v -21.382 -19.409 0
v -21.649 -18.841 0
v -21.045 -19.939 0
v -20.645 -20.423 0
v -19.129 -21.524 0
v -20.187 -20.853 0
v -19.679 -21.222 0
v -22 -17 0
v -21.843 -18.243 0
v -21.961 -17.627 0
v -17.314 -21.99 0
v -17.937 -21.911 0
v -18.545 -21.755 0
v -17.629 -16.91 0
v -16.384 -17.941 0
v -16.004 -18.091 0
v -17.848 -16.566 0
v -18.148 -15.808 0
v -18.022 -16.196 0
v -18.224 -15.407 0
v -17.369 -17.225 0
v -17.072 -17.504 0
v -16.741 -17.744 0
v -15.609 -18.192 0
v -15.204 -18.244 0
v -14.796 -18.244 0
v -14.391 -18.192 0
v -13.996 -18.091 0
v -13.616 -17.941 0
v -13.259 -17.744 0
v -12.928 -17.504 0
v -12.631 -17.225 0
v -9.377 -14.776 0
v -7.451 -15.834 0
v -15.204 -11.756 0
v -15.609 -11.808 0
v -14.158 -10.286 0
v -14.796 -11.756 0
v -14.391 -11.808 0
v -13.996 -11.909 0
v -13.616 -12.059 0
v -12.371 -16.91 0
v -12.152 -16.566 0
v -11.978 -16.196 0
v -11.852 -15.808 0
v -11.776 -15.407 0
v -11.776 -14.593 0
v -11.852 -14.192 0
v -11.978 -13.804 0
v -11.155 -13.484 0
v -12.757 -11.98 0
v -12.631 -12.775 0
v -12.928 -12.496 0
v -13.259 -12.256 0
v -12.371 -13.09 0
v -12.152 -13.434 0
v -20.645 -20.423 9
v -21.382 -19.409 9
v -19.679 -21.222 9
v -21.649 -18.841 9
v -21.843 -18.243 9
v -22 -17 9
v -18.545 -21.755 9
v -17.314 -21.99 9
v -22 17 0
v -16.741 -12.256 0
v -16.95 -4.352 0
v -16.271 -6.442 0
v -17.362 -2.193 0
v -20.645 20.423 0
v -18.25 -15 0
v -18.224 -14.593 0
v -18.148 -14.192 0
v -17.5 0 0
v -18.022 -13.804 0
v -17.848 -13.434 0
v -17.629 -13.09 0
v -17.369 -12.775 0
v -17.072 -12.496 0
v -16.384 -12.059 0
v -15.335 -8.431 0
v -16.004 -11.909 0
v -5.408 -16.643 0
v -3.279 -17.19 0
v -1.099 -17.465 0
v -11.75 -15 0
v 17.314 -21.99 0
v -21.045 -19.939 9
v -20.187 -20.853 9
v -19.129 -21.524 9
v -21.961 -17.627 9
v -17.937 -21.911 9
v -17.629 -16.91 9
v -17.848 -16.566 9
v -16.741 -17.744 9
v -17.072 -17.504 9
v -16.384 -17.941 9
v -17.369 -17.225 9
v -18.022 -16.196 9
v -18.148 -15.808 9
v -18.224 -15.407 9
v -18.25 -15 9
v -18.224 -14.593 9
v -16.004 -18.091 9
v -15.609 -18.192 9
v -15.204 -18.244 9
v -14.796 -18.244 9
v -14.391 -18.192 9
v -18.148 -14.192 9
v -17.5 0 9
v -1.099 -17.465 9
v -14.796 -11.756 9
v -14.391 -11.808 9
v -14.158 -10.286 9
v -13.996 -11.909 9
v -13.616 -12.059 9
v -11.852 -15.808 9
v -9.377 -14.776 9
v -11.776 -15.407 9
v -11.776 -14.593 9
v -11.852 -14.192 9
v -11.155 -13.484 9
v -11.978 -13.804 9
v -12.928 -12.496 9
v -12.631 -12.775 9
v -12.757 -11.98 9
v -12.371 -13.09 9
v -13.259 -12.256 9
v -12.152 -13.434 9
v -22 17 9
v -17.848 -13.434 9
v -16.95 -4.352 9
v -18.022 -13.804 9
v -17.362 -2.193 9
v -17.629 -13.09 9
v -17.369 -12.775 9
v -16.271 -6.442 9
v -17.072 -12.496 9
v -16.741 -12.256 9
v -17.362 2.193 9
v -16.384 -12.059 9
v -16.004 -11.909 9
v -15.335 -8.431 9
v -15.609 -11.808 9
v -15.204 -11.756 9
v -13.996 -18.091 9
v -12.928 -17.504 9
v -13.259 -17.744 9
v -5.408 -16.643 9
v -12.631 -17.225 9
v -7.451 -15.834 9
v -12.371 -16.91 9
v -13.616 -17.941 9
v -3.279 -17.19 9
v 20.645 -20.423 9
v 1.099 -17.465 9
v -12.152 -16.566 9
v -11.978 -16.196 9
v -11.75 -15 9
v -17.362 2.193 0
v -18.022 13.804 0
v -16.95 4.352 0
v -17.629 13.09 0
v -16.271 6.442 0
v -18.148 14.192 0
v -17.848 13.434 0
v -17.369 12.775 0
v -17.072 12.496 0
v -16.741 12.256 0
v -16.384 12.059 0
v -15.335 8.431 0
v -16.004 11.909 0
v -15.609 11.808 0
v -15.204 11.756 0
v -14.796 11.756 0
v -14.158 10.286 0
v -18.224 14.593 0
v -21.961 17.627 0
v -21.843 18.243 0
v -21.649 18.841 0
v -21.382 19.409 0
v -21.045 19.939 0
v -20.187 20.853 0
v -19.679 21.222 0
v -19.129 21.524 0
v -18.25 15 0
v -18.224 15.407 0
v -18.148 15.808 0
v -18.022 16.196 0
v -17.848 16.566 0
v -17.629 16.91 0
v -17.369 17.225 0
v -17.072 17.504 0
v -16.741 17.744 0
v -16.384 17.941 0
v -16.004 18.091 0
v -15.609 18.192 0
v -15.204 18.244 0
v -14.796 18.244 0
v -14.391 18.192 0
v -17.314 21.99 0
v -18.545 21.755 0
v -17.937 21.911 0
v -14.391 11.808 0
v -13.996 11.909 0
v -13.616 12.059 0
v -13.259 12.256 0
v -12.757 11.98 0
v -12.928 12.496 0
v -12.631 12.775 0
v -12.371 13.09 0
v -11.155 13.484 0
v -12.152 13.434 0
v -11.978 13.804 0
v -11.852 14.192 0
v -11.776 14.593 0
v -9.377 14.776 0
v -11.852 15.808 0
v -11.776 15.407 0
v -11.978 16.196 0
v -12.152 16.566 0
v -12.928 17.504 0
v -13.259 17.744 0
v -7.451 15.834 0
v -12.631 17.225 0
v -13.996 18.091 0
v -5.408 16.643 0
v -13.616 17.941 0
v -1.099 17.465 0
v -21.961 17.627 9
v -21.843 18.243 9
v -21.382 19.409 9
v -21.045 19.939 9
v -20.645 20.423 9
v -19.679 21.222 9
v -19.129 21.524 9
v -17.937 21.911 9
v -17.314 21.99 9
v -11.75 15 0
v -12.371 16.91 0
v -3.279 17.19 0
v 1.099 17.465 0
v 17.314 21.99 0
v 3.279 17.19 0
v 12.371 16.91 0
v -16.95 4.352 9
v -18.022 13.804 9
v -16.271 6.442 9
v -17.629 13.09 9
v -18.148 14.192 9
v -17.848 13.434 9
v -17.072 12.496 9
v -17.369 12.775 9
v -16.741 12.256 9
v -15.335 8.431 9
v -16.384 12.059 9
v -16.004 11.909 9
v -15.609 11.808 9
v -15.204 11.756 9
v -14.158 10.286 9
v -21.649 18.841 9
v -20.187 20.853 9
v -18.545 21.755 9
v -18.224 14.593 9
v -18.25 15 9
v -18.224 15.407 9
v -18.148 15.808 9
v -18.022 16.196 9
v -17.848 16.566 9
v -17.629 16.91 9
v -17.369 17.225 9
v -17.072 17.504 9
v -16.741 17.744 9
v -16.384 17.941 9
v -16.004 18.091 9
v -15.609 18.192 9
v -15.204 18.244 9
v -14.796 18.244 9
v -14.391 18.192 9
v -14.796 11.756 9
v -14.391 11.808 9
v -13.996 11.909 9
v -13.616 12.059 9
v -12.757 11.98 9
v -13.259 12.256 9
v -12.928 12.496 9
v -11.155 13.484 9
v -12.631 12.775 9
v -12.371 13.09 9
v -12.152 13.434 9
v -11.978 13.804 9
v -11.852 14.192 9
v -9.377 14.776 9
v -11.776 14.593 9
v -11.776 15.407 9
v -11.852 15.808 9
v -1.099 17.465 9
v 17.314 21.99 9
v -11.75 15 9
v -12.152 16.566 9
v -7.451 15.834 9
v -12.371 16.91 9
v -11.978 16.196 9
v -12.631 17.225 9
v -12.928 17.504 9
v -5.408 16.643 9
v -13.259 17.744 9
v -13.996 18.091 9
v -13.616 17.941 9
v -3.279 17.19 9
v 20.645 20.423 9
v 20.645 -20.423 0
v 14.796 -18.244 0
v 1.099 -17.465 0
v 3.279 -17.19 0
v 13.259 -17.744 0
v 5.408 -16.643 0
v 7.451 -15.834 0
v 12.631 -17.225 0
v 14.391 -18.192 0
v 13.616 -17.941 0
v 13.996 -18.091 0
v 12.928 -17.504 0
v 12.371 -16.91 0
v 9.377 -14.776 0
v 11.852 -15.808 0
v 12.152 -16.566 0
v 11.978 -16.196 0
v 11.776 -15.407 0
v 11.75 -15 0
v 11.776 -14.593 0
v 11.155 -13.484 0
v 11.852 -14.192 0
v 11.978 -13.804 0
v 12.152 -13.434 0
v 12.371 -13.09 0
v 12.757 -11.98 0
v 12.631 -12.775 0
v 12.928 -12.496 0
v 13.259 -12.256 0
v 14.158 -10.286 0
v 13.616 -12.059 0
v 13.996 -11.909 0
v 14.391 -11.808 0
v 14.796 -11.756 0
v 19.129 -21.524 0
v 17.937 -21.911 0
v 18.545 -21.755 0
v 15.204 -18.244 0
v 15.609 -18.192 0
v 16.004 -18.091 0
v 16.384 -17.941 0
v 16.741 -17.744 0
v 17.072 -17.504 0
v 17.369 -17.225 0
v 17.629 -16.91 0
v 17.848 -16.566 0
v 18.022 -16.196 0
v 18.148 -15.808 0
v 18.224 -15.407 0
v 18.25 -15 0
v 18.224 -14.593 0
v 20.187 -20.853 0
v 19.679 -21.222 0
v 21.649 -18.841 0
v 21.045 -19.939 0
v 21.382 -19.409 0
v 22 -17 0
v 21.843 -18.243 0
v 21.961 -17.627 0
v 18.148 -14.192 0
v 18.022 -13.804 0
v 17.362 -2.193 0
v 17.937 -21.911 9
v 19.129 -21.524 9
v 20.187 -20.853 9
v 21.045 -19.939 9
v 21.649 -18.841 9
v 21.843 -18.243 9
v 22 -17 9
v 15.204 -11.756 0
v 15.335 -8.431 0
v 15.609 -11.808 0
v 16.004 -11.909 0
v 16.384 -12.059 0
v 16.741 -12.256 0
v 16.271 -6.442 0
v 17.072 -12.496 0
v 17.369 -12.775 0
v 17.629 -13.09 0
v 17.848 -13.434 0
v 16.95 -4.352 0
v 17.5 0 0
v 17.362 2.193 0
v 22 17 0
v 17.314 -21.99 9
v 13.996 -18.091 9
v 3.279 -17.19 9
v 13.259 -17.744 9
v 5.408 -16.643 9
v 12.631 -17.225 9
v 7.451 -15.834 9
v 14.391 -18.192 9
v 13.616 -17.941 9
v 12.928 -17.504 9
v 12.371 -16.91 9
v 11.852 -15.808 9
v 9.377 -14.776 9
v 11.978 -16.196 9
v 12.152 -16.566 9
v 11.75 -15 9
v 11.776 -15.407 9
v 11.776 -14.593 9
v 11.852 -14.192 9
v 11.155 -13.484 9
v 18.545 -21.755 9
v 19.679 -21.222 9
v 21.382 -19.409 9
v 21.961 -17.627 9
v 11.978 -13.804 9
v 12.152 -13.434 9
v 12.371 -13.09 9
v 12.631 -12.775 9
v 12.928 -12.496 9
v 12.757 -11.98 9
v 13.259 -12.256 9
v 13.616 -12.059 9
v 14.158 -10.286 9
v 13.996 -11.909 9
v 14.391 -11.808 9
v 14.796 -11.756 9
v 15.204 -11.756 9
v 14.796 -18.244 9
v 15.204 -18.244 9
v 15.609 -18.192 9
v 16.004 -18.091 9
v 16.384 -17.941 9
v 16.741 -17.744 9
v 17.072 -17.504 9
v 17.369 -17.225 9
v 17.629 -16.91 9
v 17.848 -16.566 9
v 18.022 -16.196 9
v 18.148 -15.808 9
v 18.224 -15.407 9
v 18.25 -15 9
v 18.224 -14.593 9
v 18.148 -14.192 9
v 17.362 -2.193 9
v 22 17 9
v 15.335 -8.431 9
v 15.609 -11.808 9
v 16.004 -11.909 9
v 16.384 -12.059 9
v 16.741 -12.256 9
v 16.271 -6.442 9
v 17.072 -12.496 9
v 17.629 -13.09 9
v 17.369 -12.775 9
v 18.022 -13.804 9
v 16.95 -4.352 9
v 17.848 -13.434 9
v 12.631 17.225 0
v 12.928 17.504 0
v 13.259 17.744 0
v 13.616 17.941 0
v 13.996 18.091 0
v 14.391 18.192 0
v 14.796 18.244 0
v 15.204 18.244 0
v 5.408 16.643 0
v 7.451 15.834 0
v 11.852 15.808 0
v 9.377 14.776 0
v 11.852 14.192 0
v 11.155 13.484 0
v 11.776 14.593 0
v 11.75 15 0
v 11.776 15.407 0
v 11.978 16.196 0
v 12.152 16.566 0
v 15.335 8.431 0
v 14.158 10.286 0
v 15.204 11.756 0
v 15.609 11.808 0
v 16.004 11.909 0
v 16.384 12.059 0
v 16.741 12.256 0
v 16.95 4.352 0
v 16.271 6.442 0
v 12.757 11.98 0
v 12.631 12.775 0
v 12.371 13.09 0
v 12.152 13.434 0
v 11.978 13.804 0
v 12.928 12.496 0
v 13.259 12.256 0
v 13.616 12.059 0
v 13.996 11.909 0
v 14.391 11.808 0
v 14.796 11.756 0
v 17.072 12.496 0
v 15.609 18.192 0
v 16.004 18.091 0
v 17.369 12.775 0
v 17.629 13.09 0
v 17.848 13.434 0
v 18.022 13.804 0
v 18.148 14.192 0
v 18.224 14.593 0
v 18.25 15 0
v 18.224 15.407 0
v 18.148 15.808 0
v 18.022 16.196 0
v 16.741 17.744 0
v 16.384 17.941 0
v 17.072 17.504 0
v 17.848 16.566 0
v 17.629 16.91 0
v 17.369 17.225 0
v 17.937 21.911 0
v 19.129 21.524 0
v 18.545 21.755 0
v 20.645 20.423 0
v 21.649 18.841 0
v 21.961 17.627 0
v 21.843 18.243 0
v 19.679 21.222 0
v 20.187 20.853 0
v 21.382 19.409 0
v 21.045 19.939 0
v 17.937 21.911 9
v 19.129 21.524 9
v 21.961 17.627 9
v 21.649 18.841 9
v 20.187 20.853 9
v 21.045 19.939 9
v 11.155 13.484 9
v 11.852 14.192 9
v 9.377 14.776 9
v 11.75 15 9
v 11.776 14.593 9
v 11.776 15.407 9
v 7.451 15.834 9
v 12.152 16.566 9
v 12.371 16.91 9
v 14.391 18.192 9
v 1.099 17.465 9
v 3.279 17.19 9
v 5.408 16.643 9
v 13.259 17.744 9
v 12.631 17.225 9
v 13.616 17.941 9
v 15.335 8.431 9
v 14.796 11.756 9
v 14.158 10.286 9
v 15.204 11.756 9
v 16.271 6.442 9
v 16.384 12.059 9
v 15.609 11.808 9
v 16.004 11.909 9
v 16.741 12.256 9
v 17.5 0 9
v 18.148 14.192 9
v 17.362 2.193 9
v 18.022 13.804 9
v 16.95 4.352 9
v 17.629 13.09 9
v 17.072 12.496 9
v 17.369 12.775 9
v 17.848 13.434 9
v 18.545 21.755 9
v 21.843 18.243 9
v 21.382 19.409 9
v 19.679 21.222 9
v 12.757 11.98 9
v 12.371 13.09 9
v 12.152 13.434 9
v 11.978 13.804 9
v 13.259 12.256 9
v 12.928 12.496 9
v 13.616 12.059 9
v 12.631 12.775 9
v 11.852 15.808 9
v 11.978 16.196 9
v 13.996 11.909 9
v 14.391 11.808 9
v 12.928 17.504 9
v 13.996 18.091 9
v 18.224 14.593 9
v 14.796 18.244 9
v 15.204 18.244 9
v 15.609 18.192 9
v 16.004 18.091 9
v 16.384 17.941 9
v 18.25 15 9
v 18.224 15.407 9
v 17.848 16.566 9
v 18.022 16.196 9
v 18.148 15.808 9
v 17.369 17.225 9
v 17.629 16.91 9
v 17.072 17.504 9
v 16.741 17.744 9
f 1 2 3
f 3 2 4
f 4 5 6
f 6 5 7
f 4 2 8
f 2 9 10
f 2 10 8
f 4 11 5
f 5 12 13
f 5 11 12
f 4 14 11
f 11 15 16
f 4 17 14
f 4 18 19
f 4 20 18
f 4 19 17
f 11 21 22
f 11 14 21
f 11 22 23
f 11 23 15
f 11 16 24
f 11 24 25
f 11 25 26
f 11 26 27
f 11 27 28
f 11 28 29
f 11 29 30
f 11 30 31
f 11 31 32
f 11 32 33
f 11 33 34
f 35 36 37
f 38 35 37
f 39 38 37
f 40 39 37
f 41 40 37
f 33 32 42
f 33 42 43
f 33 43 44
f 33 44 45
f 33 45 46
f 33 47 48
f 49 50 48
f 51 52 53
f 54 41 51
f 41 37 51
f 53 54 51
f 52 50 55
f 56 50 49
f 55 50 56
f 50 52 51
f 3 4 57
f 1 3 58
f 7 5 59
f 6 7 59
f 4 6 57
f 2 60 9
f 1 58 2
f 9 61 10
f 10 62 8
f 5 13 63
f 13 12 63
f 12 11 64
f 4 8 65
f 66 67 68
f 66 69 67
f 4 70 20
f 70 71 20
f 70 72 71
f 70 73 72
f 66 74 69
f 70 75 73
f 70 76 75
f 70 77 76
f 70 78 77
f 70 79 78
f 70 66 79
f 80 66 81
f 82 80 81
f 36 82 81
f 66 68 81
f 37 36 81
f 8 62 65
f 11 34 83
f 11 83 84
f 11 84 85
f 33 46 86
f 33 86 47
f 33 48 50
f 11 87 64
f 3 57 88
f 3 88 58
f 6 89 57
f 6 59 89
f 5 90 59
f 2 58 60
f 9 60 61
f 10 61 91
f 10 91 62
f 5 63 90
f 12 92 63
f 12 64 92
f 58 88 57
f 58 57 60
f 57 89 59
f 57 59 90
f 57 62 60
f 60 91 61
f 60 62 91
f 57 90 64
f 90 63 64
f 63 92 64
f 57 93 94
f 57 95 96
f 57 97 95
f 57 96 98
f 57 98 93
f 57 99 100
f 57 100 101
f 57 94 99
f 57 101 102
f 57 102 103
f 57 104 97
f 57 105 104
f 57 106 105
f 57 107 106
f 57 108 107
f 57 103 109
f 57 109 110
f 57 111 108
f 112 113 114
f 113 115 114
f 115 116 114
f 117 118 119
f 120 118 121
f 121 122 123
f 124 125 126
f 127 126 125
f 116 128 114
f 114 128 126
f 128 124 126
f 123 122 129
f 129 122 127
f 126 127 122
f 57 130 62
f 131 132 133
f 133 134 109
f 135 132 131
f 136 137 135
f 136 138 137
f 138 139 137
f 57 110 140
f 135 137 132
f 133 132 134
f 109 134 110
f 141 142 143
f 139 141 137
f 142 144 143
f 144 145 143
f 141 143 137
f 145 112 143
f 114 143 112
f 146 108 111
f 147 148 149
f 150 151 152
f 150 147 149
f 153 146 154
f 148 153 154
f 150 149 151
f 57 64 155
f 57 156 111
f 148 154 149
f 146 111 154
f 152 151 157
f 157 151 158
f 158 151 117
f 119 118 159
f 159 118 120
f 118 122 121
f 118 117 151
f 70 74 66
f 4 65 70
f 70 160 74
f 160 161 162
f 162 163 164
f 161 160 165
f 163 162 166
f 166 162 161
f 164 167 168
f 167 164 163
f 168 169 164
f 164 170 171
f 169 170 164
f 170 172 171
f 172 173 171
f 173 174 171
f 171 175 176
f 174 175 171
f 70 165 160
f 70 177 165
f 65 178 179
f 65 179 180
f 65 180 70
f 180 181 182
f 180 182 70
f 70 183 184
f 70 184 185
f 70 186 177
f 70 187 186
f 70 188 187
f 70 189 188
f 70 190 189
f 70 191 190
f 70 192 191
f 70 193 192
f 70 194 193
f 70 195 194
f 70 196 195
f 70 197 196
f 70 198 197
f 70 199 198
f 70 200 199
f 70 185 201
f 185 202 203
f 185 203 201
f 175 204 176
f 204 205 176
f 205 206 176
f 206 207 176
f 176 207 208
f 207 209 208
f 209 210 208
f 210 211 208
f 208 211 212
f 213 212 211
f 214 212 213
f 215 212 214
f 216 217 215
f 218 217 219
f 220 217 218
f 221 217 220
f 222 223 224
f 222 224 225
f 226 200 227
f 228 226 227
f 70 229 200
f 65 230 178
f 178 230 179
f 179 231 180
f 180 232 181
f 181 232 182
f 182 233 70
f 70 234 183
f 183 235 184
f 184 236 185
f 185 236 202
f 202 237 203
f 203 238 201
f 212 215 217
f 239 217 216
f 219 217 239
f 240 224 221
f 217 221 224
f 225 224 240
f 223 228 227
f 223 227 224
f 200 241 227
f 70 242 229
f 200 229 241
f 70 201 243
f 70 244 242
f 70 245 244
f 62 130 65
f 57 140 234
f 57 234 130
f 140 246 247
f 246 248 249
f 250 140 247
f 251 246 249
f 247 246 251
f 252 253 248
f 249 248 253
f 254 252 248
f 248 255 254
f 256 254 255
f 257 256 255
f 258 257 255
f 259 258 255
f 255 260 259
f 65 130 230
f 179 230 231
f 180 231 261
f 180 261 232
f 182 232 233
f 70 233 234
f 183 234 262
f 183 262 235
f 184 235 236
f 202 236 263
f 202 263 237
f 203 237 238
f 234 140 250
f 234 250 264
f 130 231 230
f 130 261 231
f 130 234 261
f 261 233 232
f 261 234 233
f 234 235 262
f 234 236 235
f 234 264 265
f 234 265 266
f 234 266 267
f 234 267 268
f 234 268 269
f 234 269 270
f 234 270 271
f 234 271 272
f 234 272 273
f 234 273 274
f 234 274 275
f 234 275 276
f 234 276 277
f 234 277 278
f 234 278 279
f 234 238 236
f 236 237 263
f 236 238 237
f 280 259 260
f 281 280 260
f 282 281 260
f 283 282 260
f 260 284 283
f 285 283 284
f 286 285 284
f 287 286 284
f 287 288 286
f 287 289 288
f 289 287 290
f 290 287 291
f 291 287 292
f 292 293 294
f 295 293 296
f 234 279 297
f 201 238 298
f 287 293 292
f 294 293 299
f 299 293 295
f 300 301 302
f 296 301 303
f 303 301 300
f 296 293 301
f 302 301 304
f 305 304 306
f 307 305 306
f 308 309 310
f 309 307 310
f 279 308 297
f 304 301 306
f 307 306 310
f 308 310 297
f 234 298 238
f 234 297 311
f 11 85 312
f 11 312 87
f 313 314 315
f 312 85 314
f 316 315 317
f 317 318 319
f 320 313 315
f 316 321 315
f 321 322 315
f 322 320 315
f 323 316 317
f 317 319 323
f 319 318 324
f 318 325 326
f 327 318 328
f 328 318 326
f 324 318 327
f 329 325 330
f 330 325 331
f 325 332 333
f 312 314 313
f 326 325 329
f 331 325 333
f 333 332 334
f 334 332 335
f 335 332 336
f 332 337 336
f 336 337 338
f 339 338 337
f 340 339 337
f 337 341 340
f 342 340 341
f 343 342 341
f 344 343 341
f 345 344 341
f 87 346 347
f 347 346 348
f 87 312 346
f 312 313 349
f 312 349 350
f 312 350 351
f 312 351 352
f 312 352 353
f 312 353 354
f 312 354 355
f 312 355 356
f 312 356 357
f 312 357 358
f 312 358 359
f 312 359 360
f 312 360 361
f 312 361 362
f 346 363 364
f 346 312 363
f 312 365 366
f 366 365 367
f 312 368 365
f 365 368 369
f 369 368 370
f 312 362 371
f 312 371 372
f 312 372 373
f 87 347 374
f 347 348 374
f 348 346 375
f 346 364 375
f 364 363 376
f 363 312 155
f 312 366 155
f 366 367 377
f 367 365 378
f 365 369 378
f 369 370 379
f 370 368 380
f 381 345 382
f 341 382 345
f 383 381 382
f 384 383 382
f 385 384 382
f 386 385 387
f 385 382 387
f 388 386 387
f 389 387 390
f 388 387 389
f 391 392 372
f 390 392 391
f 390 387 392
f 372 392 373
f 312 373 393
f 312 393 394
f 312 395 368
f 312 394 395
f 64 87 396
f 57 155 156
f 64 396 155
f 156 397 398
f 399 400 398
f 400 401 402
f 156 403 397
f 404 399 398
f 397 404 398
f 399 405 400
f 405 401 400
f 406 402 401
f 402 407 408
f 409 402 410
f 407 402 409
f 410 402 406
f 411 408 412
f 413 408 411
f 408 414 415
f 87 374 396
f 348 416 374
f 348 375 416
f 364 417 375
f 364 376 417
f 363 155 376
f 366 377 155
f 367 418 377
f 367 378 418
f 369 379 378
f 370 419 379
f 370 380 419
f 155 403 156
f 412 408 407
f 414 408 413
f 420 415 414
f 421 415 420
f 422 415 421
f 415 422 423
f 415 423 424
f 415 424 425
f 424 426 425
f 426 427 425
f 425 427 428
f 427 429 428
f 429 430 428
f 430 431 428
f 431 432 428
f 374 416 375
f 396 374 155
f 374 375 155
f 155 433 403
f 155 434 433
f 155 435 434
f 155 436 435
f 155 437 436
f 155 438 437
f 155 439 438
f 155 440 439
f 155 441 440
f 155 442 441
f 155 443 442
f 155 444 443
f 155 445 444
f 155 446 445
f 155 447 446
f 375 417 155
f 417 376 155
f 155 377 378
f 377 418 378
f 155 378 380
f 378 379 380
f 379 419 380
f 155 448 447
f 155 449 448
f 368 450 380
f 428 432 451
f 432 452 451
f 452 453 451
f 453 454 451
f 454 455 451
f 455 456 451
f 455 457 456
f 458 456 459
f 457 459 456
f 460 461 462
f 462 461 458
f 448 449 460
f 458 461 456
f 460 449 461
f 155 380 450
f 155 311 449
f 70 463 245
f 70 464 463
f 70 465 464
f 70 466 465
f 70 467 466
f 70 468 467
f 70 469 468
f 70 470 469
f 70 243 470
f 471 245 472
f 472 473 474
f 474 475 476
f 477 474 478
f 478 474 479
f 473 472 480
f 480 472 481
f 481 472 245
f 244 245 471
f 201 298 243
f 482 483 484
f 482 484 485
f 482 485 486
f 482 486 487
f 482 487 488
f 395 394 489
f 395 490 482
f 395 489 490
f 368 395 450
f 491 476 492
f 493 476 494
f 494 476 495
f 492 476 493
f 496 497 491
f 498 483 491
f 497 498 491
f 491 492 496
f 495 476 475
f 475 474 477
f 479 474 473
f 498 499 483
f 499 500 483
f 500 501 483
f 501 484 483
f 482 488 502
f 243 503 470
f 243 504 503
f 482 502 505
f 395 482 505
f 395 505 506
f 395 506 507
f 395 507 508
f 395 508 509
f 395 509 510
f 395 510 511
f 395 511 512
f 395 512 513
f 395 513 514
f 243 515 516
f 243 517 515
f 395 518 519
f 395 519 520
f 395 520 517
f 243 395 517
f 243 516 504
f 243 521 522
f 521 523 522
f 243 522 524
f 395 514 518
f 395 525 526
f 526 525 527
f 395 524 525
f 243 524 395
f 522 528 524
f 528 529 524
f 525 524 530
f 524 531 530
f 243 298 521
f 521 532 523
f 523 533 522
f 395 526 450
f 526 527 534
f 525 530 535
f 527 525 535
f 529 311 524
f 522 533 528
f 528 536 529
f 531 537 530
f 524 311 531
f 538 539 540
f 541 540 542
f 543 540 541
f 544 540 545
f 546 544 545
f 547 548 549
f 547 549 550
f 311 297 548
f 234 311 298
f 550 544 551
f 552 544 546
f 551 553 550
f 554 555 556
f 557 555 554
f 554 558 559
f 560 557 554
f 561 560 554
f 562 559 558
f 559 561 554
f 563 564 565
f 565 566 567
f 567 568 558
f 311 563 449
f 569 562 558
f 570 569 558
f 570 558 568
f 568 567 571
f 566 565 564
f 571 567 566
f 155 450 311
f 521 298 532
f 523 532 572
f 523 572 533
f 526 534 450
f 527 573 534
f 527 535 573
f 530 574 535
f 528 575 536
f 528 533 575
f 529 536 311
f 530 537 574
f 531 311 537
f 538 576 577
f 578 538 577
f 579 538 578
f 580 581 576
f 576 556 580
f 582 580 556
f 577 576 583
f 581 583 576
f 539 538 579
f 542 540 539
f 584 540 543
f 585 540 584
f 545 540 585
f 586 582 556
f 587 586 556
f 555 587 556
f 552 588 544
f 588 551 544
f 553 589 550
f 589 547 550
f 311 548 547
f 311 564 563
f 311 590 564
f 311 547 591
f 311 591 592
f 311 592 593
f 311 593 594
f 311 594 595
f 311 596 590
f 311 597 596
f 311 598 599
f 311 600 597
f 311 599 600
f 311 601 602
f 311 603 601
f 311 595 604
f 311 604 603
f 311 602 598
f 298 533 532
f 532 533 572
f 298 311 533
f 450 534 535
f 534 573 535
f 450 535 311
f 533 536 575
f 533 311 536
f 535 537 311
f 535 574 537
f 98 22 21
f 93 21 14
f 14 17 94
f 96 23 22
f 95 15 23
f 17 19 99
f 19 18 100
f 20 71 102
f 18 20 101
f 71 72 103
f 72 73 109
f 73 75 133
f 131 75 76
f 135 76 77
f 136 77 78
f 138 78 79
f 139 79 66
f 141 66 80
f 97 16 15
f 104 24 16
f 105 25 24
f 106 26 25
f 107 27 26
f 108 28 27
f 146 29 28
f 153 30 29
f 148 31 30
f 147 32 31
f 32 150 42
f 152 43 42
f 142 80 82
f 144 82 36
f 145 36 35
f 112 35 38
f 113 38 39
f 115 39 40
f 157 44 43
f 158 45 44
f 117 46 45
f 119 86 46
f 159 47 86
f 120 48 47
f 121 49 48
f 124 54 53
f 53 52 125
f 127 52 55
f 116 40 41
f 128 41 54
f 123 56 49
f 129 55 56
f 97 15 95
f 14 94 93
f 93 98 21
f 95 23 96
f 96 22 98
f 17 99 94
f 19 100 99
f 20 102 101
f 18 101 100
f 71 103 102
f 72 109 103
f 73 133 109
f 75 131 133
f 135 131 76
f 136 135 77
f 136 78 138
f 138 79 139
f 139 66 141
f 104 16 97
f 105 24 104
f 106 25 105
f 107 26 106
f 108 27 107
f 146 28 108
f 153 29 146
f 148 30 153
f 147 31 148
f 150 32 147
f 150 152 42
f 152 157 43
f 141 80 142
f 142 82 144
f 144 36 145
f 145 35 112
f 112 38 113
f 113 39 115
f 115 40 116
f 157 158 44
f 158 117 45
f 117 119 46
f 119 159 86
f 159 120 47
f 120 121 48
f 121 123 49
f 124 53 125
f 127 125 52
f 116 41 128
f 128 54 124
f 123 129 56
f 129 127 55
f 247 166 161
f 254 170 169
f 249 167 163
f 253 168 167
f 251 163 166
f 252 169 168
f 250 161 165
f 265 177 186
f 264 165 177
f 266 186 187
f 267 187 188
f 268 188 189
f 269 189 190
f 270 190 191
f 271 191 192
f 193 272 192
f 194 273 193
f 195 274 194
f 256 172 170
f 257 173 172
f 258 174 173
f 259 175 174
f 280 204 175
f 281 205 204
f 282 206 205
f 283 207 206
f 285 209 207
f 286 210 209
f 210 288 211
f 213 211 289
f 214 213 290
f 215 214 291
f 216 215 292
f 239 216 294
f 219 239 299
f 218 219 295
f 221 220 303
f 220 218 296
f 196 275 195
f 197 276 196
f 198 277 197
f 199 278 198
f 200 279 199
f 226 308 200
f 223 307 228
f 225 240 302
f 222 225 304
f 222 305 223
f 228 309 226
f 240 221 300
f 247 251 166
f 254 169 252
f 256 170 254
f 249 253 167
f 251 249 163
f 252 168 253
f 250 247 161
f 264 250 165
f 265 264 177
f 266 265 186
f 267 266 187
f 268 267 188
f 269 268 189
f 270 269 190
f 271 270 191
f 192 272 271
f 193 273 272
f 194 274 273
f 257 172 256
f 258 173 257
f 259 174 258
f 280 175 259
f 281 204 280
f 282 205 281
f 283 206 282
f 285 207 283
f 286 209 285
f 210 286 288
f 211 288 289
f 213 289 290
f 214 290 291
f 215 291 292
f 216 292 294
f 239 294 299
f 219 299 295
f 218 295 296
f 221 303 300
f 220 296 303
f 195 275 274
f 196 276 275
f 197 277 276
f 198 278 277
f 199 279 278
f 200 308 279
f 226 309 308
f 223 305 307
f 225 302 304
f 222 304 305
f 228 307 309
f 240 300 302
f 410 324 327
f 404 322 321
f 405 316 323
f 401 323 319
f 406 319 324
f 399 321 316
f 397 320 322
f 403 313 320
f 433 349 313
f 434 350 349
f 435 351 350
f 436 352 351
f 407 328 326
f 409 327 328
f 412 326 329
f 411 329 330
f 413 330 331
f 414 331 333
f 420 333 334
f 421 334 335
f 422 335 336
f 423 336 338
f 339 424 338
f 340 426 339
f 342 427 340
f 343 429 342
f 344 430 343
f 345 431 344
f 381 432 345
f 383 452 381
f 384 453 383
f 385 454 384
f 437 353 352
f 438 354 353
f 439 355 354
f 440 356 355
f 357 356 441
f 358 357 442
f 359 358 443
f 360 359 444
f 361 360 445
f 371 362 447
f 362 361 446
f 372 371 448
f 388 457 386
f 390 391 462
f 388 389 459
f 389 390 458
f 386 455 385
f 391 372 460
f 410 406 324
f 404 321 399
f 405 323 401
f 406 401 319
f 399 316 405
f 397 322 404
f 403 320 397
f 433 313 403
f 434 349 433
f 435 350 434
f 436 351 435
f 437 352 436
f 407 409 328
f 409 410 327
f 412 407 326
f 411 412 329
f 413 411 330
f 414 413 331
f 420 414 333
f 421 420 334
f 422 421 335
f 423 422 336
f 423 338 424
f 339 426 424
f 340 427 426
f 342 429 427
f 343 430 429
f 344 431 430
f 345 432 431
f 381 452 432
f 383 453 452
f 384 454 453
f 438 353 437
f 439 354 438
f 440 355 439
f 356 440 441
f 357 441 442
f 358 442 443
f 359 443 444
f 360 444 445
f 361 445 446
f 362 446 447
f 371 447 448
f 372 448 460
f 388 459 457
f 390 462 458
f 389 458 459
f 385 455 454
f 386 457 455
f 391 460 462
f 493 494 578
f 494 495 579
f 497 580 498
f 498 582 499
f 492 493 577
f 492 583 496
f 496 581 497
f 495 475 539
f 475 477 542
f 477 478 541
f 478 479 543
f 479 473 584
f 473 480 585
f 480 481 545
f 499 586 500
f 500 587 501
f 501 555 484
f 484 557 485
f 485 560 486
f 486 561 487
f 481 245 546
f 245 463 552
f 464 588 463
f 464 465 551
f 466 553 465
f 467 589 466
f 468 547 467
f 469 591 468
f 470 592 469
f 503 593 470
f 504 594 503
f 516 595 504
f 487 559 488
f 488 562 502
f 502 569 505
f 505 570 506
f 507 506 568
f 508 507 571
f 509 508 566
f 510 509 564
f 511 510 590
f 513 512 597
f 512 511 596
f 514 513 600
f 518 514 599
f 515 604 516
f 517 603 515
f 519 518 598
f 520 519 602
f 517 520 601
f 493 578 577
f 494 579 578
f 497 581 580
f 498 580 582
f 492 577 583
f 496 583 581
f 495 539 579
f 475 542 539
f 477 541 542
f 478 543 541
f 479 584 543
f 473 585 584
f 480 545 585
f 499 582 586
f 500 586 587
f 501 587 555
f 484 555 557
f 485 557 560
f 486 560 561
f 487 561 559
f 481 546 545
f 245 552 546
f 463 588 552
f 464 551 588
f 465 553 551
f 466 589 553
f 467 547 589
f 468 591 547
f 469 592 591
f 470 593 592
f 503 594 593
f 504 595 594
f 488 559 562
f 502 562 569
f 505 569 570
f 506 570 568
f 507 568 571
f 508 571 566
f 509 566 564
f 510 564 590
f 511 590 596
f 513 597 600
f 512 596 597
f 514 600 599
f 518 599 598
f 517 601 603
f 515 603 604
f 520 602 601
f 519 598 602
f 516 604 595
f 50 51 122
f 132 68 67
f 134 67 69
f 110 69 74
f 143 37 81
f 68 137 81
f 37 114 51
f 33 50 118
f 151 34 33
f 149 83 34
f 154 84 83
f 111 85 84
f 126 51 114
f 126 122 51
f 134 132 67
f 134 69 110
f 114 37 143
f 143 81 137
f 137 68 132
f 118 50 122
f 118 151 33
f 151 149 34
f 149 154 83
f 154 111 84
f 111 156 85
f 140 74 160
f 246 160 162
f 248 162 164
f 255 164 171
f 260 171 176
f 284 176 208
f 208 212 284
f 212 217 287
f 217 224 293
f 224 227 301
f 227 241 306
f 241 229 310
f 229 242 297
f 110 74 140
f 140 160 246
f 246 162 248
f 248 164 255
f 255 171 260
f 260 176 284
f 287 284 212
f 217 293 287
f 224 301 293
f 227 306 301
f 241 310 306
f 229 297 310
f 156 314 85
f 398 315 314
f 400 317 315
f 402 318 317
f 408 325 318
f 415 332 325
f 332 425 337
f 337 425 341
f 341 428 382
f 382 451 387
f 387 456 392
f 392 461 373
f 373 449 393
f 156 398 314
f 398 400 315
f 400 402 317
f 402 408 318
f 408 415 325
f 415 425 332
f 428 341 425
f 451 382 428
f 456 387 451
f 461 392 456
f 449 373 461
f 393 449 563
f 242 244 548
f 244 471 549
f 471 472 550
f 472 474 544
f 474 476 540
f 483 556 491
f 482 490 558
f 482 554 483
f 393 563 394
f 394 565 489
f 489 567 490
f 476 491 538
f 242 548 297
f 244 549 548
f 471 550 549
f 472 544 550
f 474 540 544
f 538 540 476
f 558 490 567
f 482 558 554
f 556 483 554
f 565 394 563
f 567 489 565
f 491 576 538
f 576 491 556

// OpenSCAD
$fn = 50;

difference() {
	union() {
		hull() {
			translate(v = [-17.0, 17.0, 0]) {
				cylinder(h = 9, r = 5);
			}
			translate(v = [17.0, 17.0, 0]) {
				cylinder(h = 9, r = 5);
			}
			translate(v = [-17.0, -17.0, 0]) {
				cylinder(h = 9, r = 5);
			}
			translate(v = [17.0, -17.0, 0]) {
				cylinder(h = 9, r = 5);
			}
		}
	}
	union() {
		translate(v = [-15.0, -15.0, -100.0]) {
			cylinder(h = 200, r = 3.25);
		}
		translate(v = [-15.0, 15.0, -100.0]) {
			cylinder(h = 200, r = 3.25);
		}
		translate(v = [15.0, -15.0, -100.0]) {
			cylinder(h = 200, r = 3.25);
		}
		translate(v = [15.0, 15.0, -100.0]) {
			cylinder(h = 200, r = 3.25);
		}
		translate(v = [-15.0, -15.0, -100.0]) {
			cylinder(h = 200, r = 1.8);
		}
		translate(v = [-15.0, 15.0, -100.0]) {
			cylinder(h = 200, r = 1.8);
		}
		translate(v = [15.0, -15.0, -100.0]) {
			cylinder(h = 200, r = 1.8);
		}
		translate(v = [15.0, 15.0, -100.0]) {
			cylinder(h = 200, r = 1.8);
		}
		cylinder(h = 9, r = 17.5);
	}
}
